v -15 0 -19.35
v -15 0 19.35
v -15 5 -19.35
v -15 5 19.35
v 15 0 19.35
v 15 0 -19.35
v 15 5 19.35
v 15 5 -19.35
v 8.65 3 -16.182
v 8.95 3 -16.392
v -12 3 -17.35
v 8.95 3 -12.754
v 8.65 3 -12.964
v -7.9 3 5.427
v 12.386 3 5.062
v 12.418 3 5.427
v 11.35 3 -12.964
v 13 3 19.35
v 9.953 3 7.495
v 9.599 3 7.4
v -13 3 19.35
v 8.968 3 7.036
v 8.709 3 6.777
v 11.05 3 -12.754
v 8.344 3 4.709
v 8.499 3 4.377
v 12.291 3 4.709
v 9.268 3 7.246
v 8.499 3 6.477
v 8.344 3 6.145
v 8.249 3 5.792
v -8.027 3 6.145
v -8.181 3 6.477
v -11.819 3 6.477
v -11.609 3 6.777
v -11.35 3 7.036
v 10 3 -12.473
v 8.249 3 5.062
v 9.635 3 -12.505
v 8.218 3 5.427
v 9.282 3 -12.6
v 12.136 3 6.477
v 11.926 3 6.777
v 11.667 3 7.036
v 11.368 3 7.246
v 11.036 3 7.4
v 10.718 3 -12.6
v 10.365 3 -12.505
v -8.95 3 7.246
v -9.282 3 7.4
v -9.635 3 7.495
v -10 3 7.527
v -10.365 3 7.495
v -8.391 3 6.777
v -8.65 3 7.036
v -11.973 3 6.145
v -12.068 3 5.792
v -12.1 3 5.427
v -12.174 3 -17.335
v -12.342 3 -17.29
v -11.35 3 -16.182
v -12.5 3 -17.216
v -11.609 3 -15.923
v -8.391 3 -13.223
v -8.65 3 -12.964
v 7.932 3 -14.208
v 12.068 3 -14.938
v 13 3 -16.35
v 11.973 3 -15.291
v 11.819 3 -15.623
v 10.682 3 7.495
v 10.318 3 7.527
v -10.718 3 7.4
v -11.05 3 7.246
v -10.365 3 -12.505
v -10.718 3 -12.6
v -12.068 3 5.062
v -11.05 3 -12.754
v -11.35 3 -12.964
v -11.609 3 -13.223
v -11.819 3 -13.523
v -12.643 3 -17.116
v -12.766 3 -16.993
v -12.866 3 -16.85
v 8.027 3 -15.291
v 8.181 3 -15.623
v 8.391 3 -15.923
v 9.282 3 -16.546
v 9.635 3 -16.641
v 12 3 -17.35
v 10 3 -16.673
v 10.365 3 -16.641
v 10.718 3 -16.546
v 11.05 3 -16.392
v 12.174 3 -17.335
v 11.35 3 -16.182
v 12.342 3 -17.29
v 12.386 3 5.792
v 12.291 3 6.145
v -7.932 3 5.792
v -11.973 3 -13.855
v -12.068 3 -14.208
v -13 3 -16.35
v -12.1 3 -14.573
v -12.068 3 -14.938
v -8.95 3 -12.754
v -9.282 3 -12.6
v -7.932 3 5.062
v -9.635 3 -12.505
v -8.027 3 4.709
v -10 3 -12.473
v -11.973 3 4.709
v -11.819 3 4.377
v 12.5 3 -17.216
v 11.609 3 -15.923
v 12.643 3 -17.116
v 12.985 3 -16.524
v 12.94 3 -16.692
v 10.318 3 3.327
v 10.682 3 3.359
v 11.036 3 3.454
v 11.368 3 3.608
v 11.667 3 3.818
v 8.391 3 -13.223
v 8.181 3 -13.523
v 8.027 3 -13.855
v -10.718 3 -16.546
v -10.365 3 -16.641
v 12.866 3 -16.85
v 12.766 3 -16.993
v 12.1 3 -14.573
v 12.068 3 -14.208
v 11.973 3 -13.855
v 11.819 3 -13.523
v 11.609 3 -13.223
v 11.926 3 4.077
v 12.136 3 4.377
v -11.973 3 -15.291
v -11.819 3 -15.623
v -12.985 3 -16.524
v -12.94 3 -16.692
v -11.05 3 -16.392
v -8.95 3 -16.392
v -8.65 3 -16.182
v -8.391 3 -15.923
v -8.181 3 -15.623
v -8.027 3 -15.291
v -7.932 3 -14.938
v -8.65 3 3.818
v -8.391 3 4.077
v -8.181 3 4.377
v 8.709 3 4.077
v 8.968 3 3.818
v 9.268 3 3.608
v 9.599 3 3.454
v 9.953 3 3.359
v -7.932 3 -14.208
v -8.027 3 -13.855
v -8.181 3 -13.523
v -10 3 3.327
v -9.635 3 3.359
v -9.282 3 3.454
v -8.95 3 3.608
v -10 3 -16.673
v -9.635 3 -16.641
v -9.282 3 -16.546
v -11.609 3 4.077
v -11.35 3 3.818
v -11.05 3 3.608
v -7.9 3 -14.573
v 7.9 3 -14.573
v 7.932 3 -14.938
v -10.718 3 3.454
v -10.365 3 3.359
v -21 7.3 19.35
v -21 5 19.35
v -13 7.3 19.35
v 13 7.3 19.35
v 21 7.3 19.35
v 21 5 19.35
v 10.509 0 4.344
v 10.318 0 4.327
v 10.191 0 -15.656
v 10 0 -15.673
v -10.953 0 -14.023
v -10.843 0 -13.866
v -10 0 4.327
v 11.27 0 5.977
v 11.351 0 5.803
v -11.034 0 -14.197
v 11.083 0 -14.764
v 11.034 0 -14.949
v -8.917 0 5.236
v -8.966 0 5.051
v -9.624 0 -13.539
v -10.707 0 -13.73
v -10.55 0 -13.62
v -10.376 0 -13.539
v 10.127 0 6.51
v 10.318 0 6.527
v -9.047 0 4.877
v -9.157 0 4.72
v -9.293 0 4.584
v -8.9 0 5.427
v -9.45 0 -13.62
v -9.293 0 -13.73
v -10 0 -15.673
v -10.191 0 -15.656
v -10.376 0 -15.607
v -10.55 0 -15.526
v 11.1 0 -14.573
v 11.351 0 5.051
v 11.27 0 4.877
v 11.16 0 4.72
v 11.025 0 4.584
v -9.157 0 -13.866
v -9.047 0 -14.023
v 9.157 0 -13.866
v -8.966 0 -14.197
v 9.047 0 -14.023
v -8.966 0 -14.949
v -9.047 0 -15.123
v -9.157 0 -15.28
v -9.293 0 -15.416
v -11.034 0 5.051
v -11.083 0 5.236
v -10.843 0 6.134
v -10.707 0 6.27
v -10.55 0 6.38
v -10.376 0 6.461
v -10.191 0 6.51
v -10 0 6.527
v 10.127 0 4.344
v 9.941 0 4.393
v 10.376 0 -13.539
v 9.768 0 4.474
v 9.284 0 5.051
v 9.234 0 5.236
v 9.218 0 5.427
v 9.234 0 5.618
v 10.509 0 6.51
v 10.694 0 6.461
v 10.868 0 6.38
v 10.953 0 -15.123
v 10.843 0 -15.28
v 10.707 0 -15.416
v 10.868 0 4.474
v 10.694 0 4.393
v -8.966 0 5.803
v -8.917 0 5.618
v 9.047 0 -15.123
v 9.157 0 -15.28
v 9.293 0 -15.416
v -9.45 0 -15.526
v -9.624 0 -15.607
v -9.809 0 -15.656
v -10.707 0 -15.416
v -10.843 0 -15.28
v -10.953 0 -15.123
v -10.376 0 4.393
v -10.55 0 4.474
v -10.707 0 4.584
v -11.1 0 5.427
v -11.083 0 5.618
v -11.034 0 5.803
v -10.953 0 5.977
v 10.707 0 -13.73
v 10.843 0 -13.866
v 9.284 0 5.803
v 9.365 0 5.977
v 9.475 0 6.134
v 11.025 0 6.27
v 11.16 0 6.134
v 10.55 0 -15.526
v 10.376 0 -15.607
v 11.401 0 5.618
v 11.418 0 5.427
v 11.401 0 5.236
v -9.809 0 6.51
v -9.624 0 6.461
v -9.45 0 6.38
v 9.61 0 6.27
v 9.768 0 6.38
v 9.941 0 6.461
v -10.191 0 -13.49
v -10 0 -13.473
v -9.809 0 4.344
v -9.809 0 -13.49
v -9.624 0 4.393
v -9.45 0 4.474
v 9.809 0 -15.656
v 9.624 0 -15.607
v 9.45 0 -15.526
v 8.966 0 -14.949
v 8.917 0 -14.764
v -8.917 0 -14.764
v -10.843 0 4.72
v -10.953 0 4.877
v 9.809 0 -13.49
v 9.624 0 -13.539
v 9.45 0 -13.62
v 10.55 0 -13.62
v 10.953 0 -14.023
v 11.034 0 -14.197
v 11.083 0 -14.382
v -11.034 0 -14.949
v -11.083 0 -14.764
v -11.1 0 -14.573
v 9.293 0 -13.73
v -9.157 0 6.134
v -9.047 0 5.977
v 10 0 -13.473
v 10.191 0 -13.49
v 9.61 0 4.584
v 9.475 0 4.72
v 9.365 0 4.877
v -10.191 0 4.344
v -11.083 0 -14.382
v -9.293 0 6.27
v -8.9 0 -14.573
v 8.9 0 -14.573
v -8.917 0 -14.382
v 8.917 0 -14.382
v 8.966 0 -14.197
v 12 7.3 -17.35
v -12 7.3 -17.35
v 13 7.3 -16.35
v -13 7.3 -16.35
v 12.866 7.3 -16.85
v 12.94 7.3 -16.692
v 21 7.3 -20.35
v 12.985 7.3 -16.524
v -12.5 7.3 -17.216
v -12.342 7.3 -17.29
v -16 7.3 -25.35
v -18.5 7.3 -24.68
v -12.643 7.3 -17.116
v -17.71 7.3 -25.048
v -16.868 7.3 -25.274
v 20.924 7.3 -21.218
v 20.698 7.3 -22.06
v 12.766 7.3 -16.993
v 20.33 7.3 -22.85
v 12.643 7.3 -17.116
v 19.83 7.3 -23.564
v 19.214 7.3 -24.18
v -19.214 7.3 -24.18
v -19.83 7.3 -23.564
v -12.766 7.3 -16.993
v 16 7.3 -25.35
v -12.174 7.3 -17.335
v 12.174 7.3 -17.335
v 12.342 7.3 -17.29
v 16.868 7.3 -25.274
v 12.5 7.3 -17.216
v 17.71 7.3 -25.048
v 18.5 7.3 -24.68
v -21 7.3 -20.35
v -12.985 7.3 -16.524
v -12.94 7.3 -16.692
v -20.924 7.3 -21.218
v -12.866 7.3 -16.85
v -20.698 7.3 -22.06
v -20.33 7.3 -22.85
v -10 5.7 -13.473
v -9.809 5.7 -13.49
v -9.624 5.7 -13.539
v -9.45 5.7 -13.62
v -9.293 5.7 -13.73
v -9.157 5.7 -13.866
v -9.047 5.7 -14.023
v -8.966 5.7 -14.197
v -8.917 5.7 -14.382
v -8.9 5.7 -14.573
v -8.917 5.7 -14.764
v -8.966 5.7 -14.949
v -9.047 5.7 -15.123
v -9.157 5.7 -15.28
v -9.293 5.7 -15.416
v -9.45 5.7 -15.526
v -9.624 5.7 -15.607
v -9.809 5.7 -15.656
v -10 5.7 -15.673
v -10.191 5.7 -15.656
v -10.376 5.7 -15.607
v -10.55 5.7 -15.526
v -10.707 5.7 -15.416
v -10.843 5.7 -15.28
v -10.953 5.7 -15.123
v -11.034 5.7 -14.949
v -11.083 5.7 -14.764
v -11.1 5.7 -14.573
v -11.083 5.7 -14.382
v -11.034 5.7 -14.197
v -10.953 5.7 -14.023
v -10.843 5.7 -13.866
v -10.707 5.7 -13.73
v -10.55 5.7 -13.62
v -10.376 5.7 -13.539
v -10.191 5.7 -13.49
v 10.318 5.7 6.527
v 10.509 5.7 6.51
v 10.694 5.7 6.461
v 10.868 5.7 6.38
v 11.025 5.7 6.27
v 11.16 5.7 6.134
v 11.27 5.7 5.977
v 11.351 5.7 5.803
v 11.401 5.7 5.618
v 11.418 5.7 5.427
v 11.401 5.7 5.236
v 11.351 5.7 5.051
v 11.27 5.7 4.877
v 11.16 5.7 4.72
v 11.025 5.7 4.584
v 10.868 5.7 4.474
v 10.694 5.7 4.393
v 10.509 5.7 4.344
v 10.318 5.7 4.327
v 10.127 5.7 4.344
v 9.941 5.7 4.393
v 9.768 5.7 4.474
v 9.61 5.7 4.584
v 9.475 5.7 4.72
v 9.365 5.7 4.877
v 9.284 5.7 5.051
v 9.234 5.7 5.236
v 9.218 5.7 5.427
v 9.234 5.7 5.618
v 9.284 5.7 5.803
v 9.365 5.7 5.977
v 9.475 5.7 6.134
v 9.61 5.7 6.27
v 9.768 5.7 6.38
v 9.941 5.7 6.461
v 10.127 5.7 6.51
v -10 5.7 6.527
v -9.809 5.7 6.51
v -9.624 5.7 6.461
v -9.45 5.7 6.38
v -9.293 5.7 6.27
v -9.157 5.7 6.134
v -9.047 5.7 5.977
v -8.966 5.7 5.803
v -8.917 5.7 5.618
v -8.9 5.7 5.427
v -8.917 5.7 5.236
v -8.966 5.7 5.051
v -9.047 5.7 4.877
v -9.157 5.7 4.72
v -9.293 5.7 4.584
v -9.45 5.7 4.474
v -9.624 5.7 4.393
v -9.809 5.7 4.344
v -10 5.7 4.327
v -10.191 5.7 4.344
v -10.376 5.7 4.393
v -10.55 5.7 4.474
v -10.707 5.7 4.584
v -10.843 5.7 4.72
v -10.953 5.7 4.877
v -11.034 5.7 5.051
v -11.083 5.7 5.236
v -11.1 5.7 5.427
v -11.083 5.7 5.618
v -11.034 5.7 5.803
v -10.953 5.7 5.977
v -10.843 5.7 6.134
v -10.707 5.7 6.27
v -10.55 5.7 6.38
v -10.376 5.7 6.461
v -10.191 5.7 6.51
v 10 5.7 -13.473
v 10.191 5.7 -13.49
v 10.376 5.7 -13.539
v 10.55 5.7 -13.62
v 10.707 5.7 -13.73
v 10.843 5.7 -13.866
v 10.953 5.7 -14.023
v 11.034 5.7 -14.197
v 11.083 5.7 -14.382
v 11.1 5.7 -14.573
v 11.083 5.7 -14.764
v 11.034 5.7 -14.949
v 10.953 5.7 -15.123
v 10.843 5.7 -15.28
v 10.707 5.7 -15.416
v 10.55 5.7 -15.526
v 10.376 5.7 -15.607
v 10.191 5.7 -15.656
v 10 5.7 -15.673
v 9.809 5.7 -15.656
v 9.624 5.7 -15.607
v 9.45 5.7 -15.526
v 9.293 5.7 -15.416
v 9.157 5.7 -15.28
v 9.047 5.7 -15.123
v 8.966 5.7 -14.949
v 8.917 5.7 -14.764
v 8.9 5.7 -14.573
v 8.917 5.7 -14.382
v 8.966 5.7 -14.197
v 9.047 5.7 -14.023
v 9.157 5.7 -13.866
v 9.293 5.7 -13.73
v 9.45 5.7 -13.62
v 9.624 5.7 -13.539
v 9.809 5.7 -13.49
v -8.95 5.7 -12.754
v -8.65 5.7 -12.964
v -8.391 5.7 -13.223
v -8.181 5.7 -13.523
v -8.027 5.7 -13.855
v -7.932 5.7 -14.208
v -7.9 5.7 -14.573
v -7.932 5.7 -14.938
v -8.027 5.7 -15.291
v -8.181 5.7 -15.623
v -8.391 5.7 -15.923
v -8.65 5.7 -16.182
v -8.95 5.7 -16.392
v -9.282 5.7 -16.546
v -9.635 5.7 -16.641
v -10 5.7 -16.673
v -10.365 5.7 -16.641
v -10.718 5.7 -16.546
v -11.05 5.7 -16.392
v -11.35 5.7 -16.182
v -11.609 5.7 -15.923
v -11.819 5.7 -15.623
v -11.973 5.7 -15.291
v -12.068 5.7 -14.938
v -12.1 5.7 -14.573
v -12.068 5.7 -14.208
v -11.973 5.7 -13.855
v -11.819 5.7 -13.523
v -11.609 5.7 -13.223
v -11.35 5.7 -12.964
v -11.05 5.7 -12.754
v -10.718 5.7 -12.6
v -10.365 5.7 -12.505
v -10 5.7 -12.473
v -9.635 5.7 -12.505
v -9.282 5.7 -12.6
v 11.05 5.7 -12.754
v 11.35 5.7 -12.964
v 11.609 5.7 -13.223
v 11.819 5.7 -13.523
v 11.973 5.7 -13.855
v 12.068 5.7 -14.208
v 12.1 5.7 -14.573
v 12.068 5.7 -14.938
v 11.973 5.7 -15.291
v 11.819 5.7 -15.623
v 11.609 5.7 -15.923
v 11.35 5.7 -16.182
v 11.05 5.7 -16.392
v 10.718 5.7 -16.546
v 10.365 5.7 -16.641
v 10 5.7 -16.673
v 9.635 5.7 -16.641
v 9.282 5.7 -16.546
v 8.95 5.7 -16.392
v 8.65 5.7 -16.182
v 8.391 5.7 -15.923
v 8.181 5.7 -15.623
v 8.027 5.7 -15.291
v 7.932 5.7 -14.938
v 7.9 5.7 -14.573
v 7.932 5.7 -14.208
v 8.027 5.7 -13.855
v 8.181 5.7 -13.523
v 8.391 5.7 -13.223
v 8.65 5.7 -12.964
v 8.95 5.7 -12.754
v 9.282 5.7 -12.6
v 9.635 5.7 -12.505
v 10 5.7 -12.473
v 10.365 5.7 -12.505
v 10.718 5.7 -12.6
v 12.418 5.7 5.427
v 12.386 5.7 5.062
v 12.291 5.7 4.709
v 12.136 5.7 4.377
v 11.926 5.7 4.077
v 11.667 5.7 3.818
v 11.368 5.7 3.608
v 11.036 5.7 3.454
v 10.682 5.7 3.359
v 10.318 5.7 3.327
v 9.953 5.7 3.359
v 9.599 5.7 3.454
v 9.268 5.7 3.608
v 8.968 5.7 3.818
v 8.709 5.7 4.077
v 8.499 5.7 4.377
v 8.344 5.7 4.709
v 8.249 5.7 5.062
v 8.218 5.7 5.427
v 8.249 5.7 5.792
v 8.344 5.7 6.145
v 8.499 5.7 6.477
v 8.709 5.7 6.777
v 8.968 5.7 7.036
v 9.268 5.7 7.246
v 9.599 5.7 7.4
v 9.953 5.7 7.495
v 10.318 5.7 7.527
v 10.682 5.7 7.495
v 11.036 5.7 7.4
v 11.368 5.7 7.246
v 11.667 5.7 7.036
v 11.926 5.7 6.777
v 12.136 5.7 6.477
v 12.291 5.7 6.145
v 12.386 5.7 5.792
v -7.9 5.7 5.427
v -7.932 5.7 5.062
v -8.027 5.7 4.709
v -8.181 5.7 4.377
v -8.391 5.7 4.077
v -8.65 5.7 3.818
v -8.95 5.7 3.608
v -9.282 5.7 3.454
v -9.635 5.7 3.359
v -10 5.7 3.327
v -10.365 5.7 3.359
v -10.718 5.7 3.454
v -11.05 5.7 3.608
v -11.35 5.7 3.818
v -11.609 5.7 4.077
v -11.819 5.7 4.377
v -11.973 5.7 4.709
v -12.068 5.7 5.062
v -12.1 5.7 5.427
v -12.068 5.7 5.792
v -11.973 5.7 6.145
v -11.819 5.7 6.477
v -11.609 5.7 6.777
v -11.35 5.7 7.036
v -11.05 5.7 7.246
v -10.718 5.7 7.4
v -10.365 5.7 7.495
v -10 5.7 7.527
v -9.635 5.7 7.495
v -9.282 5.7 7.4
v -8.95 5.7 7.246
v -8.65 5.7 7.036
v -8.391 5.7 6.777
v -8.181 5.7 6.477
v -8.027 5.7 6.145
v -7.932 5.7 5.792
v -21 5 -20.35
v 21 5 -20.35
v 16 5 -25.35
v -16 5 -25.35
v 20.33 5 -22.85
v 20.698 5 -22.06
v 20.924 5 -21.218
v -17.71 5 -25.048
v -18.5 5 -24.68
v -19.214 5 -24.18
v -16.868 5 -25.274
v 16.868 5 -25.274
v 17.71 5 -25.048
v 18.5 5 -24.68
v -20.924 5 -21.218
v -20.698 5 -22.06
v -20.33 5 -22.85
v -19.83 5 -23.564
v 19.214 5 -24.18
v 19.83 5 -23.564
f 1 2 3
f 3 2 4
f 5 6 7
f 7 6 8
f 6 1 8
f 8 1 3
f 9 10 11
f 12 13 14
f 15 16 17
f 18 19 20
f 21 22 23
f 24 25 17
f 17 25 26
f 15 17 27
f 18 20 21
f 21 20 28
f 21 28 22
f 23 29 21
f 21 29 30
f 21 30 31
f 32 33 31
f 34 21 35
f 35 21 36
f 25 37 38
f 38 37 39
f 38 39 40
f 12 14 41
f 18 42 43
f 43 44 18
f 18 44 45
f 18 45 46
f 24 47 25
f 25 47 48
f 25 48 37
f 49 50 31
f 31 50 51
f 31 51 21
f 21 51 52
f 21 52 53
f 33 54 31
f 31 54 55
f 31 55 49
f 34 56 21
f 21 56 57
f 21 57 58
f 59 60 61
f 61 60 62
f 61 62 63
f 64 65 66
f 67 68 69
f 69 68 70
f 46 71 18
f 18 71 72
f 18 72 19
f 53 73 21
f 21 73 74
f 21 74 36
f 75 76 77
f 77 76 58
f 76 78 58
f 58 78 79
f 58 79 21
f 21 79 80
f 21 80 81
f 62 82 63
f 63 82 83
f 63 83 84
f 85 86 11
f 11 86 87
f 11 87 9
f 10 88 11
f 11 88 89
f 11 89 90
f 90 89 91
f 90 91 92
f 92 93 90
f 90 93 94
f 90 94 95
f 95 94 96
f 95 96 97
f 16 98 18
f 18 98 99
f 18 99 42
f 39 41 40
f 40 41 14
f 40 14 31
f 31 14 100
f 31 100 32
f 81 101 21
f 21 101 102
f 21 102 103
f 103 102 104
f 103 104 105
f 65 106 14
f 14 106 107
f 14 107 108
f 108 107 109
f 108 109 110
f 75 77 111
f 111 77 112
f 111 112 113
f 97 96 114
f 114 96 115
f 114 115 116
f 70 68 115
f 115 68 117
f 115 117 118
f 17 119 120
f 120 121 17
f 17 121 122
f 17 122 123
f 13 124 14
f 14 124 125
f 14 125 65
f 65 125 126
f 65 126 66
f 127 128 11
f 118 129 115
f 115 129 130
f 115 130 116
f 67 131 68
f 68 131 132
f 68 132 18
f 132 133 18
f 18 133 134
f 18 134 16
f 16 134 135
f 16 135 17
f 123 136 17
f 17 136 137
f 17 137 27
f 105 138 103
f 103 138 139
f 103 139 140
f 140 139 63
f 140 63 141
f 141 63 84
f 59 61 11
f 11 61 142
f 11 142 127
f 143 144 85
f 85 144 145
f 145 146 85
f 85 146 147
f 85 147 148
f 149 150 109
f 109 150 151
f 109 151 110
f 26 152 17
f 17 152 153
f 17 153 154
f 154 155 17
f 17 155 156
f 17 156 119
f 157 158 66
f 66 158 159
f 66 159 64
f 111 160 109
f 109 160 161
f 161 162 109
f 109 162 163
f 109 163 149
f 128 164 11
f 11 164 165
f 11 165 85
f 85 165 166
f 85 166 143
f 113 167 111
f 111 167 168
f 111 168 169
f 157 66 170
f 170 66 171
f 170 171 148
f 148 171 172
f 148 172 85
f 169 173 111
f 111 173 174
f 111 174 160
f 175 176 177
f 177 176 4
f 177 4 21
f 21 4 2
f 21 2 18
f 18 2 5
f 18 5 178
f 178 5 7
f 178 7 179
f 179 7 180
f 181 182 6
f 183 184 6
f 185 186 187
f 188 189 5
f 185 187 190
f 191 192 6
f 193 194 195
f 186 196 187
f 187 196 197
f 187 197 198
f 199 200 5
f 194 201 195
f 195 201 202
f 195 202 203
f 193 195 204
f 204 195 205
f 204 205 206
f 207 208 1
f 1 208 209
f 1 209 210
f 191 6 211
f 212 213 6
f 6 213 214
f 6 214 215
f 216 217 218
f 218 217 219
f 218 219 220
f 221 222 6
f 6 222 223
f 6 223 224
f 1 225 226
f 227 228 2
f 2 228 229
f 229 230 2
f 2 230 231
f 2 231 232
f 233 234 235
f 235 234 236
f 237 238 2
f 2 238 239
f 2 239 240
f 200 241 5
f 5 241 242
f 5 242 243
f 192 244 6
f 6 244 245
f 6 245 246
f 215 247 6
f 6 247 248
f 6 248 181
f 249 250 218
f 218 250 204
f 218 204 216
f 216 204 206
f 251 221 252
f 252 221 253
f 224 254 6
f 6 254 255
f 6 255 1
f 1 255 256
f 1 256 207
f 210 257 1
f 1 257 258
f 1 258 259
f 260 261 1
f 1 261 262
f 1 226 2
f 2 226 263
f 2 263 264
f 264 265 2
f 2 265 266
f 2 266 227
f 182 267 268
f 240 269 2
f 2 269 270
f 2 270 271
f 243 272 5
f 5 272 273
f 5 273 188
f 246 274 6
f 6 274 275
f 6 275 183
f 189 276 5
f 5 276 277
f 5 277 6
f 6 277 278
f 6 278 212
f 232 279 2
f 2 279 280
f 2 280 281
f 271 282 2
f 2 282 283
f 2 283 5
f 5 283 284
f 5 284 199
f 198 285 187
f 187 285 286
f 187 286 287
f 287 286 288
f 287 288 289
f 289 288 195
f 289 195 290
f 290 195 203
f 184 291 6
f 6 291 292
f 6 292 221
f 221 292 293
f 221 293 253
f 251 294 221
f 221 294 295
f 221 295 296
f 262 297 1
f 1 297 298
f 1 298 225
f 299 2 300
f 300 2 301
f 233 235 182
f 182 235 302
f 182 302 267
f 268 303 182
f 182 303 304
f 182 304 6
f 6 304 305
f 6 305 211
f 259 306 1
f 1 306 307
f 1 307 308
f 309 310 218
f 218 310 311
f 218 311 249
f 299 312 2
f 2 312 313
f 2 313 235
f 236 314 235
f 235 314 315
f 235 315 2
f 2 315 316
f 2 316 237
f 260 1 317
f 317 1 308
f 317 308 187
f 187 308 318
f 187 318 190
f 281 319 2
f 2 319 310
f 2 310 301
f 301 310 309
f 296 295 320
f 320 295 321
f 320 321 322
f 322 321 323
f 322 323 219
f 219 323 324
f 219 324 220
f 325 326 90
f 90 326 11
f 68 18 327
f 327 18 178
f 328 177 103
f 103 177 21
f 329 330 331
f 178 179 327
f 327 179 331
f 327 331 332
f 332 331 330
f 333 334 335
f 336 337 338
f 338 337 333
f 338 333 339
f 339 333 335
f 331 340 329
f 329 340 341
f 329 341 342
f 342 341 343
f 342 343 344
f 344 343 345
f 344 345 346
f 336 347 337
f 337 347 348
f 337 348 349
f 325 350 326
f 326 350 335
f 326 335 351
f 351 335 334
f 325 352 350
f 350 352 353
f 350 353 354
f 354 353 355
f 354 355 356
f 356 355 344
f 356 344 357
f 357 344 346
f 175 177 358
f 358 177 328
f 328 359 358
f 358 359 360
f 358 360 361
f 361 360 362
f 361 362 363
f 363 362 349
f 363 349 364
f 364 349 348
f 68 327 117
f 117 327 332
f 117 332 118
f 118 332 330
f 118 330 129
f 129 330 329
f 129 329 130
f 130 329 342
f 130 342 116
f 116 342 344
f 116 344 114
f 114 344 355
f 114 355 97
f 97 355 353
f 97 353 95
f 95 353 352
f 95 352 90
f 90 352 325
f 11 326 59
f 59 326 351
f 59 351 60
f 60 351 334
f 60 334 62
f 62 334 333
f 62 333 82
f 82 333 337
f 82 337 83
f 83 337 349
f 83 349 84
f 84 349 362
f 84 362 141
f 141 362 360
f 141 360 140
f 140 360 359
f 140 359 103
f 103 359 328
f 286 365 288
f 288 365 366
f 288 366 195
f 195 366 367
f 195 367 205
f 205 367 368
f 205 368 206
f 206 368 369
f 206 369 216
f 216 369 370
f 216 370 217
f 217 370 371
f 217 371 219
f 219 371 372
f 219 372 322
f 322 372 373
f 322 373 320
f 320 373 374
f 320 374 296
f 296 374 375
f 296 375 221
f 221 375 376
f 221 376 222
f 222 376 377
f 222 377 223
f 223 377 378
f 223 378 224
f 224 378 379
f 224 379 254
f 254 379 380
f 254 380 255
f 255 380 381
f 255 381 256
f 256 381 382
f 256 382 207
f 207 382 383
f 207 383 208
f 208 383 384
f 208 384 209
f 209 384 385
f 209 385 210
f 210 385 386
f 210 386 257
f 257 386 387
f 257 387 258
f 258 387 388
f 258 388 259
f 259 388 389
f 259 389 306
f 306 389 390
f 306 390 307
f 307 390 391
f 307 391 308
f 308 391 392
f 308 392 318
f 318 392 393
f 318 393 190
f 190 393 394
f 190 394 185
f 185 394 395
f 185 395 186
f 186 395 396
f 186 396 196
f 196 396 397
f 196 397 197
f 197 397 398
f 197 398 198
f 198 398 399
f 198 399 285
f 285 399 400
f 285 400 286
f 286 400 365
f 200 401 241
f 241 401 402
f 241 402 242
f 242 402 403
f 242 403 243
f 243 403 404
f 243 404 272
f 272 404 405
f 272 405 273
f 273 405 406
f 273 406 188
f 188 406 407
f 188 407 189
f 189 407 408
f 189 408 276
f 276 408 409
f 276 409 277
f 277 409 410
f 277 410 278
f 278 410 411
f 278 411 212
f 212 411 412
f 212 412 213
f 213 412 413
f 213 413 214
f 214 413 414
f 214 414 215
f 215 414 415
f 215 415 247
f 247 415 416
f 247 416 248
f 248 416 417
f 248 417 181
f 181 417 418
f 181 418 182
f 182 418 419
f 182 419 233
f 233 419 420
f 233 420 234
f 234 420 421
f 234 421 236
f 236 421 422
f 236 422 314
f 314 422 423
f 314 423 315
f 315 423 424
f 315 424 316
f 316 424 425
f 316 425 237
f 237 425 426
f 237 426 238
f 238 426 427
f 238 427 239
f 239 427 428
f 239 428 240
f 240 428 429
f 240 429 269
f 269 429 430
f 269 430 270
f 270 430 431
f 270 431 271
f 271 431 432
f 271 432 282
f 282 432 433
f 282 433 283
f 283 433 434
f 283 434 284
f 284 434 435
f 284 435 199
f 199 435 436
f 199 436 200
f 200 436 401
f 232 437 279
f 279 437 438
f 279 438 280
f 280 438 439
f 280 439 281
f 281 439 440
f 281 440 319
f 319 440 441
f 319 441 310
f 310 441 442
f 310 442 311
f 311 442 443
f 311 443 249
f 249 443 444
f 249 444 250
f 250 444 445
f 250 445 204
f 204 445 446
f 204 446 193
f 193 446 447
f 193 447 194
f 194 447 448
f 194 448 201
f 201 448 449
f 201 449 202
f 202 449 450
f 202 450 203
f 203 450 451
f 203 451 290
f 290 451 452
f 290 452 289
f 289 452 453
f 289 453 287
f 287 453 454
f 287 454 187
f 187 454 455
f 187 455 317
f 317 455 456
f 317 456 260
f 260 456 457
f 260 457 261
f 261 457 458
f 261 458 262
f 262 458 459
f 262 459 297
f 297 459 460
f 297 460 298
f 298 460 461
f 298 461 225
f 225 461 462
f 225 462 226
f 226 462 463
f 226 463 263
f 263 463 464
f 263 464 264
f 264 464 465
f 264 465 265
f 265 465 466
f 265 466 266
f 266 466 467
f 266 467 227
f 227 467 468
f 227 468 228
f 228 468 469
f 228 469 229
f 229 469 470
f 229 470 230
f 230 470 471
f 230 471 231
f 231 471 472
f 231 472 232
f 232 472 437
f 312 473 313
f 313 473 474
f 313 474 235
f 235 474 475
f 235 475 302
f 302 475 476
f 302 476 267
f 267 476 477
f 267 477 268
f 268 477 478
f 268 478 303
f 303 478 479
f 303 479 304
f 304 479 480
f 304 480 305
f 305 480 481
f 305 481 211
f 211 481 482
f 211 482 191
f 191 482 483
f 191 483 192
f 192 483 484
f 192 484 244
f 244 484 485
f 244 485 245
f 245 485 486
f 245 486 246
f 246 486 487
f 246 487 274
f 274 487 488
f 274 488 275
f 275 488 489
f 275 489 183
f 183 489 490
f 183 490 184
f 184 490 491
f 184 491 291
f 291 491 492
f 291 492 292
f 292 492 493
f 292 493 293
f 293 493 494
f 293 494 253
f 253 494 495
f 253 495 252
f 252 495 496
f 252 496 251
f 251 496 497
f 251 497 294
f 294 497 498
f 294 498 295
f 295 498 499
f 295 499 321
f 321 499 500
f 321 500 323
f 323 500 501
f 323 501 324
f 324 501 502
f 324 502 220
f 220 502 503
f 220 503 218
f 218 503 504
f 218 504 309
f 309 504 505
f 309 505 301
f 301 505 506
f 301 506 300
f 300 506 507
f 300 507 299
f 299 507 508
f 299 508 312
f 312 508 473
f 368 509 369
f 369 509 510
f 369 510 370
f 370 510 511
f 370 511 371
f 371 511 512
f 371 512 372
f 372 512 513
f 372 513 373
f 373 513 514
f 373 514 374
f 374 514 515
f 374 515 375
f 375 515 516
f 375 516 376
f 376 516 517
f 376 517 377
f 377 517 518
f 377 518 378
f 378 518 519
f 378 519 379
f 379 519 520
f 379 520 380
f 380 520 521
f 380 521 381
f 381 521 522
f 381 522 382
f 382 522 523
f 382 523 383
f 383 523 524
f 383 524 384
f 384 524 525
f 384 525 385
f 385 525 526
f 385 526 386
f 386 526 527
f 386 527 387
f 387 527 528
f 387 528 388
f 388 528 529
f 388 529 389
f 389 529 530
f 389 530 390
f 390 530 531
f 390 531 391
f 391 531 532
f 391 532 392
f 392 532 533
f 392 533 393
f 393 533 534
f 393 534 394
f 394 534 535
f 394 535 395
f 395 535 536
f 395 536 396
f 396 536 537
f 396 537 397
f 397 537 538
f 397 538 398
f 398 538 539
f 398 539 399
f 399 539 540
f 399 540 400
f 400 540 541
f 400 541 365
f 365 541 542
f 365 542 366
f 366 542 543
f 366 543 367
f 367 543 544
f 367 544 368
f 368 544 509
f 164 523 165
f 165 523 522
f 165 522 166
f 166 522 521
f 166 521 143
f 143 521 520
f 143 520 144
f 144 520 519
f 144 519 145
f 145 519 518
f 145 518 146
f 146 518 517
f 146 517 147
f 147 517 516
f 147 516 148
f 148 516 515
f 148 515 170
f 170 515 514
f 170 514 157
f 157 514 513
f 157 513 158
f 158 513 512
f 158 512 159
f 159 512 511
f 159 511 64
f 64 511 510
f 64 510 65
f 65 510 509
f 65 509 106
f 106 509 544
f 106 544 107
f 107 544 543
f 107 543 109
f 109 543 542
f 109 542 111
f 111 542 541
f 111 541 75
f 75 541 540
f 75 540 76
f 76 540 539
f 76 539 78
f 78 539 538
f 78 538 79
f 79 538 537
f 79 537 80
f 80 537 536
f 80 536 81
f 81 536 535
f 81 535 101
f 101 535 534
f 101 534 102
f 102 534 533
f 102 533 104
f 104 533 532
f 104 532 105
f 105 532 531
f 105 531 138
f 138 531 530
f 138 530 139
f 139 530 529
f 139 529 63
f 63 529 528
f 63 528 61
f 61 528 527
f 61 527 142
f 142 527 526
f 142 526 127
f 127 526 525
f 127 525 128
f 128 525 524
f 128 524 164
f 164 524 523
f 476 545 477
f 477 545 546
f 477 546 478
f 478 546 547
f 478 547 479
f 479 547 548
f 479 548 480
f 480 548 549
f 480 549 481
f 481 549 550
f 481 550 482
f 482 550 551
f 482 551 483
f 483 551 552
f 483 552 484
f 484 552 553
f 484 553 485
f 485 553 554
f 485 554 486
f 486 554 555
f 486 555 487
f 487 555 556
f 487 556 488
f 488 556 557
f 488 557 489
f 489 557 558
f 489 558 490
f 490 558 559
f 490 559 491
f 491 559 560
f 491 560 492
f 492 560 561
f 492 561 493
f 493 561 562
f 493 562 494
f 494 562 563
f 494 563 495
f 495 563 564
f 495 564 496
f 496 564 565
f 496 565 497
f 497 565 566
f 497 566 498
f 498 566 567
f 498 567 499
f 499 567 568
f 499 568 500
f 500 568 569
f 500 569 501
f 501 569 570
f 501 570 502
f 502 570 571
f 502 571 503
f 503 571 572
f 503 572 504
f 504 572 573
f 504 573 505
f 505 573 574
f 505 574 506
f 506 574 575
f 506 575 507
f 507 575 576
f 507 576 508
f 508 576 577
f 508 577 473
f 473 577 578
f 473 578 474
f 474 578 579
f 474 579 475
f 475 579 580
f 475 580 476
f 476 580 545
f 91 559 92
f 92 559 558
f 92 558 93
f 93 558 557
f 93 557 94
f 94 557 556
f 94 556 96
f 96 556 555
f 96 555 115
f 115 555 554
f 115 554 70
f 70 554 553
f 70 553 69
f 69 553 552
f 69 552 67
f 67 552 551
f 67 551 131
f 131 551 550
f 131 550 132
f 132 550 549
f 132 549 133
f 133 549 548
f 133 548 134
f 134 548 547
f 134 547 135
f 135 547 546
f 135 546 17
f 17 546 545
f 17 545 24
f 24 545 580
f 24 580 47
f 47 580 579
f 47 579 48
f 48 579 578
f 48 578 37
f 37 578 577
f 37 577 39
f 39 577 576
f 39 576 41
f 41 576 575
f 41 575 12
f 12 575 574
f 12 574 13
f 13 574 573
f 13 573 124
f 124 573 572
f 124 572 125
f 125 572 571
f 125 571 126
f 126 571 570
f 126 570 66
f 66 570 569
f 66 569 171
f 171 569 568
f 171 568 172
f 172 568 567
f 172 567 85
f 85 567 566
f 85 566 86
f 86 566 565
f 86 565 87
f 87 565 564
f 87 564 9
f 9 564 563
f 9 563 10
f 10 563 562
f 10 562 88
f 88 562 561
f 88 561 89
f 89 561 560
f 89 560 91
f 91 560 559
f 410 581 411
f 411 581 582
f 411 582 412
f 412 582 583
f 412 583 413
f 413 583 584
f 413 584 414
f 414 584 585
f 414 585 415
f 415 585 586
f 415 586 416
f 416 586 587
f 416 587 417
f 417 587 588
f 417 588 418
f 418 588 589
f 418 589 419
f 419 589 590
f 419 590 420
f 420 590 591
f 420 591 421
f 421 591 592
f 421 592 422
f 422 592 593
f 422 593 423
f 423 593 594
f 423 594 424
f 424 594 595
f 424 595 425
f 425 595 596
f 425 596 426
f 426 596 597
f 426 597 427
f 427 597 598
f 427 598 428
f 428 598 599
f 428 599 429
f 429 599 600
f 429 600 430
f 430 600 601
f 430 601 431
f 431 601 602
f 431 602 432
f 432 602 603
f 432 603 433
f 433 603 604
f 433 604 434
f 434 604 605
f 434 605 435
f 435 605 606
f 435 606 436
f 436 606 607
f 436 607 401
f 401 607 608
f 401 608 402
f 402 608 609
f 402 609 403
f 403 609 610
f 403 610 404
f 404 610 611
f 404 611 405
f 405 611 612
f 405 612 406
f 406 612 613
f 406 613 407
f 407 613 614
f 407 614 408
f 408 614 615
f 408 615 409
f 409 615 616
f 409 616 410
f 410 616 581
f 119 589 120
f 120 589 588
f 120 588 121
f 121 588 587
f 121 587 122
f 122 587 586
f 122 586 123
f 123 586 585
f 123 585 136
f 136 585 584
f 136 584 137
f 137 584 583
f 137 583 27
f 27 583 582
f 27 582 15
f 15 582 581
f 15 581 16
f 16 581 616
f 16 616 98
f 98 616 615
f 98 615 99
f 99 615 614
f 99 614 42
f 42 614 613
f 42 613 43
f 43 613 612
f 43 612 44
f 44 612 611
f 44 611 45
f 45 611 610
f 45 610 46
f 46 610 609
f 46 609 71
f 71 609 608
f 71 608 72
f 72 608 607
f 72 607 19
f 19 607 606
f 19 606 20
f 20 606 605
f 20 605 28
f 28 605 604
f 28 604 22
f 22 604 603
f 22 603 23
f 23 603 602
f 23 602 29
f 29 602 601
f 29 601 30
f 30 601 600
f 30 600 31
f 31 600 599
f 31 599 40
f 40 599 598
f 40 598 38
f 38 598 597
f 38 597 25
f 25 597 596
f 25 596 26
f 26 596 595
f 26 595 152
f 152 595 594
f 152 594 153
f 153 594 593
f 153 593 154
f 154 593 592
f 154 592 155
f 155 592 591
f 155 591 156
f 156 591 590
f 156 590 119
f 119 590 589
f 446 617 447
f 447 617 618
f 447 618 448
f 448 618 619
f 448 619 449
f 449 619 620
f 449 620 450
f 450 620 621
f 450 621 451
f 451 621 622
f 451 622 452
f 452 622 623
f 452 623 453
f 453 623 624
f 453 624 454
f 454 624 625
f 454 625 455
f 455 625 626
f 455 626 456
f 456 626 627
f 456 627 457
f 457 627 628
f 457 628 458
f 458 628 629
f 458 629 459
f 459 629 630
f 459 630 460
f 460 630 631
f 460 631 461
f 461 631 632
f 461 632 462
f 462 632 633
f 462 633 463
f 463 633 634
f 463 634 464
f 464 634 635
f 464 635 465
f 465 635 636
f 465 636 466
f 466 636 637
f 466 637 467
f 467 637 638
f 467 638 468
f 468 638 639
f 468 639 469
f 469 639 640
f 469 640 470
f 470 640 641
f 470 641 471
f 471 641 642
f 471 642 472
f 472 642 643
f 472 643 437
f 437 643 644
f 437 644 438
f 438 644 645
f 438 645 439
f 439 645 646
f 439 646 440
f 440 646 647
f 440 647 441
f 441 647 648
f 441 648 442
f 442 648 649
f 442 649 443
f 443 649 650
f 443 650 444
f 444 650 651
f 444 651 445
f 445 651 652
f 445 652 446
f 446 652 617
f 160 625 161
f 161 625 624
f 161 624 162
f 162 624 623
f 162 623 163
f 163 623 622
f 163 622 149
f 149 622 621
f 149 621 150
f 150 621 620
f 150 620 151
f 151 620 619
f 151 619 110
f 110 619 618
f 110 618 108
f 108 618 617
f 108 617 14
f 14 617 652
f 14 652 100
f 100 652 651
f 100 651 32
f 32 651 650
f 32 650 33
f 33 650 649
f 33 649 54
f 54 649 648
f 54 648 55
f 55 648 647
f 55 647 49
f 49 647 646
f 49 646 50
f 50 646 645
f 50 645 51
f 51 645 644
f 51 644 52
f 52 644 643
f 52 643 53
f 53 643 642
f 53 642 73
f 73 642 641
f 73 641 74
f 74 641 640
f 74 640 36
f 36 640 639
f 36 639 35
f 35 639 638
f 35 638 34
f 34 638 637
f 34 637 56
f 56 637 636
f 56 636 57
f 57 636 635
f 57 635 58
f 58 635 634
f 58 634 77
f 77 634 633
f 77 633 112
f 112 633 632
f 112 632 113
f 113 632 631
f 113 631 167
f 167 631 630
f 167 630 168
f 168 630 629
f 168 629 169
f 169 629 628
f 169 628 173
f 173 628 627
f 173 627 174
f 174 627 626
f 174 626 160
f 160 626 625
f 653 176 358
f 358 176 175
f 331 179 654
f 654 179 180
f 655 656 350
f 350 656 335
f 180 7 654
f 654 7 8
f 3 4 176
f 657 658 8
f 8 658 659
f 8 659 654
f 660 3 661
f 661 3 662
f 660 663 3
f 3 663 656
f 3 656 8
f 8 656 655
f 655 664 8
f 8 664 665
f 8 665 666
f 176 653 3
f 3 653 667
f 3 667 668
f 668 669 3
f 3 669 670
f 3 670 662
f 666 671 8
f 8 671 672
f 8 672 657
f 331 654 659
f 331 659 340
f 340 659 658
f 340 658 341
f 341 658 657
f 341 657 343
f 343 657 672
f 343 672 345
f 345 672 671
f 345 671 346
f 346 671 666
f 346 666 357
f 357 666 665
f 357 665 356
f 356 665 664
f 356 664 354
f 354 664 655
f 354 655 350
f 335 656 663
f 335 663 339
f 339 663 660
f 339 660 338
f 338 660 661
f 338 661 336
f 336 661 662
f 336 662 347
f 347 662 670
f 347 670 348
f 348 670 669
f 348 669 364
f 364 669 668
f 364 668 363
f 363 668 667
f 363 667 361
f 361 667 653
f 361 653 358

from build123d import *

# Parameters (mm, degrees)
SKETCH1_W           = 30
SKETCH1_H           = 38.7
BOSS_EXTRUDE1_DEPTH = 3
BOSS_EXTRUDE2_DEPTH = 4.3
FILLET1_R           = 1
SKETCH3_R           = 1.1
CUT_EXTRUDE1_DEPTH  = 25.857845844
BOSS_EXTRUDE3_START = 2.7
SKETCH4_R           = 2.1
SKETCH4_R_2         = 1.1
BOSS_EXTRUDE3_DEPTH = 2.7
BOSS_EXTRUDE4_START = 5
BOSS_EXTRUDE4_DEPTH = 2.3
FILLET2_R           = 5


with BuildPart() as part:
    # Sketch1 → Boss-Extrude1 (new body)
    with BuildSketch(Plane(origin=(0, 0, 0), x_dir=(1, 0, 0), z_dir=(0, 1, 0))):
        Rectangle(SKETCH1_W, SKETCH1_H)
    extrude(amount=BOSS_EXTRUDE1_DEPTH)

    # Sketch2 → Boss-Extrude2 (add)
    with BuildSketch(Plane(origin=(0, 3, 0), x_dir=(1, 0, 0), z_dir=(0, 1, 0))):
        Polygon((-13, 17.35), (-13, -19.35), (-15, -19.35), (-15, 19.35), (15, 19.35), (15, -19.35), (13, -19.35), (13, 17.35), align=None)
    extrude(amount=BOSS_EXTRUDE2_DEPTH)

    # Fillet1
    fillet1_edges = [part.edges().sort_by_distance(p)[0] for p in [
        (-13, 5.15, -17.35),
        (13, 5.15, -17.35),
    ]]
    fillet(fillet1_edges, radius=FILLET1_R)

    # Sketch3 → Cut-Extrude1 (cut, through all)
    with BuildSketch(Plane(origin=(0, 3, 0), x_dir=(1, 0, 0), z_dir=(0, 1, 0))):
        with Locations(Location((-10, 14.57312599, 0), (0, 0, 270))):
            Circle(SKETCH3_R)
        with Locations(Location((10, 14.57312599, 0), (0, 0, 270))):
            Circle(SKETCH3_R)
        with Locations(Location((-10, -5.42687401, 0), (0, 0, 270))):
            Circle(SKETCH3_R)
        with Locations(Location((10.317528275, -5.42687401, 0), (0, 0, 270))):
            Circle(SKETCH3_R)
    extrude(amount=-CUT_EXTRUDE1_DEPTH, mode=Mode.SUBTRACT)

    # Sketch4 → Boss-Extrude3 (add)
    # profile 1 of 4: a face of its own
    with BuildSketch(Plane(origin=(0, 3, 0), x_dir=(1, 0, 0), z_dir=(0, 1, 0)).offset(BOSS_EXTRUDE3_START)):
        with Locations(Location((-10, 14.57312599, 0), (0, 0, 270))):
            Circle(SKETCH4_R)
        with Locations(Location((-10, 14.57312599, 0), (0, 0, 270))):
            Circle(SKETCH4_R_2, mode=Mode.SUBTRACT)
    # profile 2 of 4: a face of its own
    with BuildSketch(Plane(origin=(0, 3, 0), x_dir=(1, 0, 0), z_dir=(0, 1, 0)).offset(BOSS_EXTRUDE3_START)):
        with Locations(Location((10, 14.57312599, 0), (0, 0, 270))):
            Circle(SKETCH4_R)
        with Locations(Location((10, 14.57312599, 0), (0, 0, 270))):
            Circle(SKETCH4_R_2, mode=Mode.SUBTRACT)
    # profile 3 of 4: a face of its own
    with BuildSketch(Plane(origin=(0, 3, 0), x_dir=(1, 0, 0), z_dir=(0, 1, 0)).offset(BOSS_EXTRUDE3_START)):
        with Locations(Location((10.317528275, -5.42687401, 0), (0, 0, 270))):
            Circle(SKETCH4_R)
        with Locations(Location((10.317528275, -5.42687401, 0), (0, 0, 270))):
            Circle(SKETCH4_R_2, mode=Mode.SUBTRACT)
    # profile 4 of 4: a face of its own
    with BuildSketch(Plane(origin=(0, 3, 0), x_dir=(1, 0, 0), z_dir=(0, 1, 0)).offset(BOSS_EXTRUDE3_START)):
        with Locations(Location((-10, -5.42687401, 0), (0, 0, 270))):
            Circle(SKETCH4_R)
        with Locations(Location((-10, -5.42687401, 0), (0, 0, 270))):
            Circle(SKETCH4_R_2, mode=Mode.SUBTRACT)
    extrude(amount=-BOSS_EXTRUDE3_DEPTH)

    # Sketch5 → Boss-Extrude4 (add)
    with BuildSketch(Plane(origin=(0, 0, 0), x_dir=(1, 0, 0), z_dir=(0, 1, 0)).offset(BOSS_EXTRUDE4_START)):
        Polygon((-21, 25.35), (21, 25.35), (21, -19.35), (15, -19.35), (15, 19.35), (-15, 19.35), (-15, -19.35), (-21, -19.35), align=None)
    extrude(amount=BOSS_EXTRUDE4_DEPTH)

    # Fillet2
    fillet2_edges = [part.edges().sort_by_distance(p)[0] for p in [
        (-21, 6.15, -25.35),
        (21, 6.15, -25.35),
    ]]
    fillet(fillet2_edges, radius=FILLET2_R)


solid = part.part
